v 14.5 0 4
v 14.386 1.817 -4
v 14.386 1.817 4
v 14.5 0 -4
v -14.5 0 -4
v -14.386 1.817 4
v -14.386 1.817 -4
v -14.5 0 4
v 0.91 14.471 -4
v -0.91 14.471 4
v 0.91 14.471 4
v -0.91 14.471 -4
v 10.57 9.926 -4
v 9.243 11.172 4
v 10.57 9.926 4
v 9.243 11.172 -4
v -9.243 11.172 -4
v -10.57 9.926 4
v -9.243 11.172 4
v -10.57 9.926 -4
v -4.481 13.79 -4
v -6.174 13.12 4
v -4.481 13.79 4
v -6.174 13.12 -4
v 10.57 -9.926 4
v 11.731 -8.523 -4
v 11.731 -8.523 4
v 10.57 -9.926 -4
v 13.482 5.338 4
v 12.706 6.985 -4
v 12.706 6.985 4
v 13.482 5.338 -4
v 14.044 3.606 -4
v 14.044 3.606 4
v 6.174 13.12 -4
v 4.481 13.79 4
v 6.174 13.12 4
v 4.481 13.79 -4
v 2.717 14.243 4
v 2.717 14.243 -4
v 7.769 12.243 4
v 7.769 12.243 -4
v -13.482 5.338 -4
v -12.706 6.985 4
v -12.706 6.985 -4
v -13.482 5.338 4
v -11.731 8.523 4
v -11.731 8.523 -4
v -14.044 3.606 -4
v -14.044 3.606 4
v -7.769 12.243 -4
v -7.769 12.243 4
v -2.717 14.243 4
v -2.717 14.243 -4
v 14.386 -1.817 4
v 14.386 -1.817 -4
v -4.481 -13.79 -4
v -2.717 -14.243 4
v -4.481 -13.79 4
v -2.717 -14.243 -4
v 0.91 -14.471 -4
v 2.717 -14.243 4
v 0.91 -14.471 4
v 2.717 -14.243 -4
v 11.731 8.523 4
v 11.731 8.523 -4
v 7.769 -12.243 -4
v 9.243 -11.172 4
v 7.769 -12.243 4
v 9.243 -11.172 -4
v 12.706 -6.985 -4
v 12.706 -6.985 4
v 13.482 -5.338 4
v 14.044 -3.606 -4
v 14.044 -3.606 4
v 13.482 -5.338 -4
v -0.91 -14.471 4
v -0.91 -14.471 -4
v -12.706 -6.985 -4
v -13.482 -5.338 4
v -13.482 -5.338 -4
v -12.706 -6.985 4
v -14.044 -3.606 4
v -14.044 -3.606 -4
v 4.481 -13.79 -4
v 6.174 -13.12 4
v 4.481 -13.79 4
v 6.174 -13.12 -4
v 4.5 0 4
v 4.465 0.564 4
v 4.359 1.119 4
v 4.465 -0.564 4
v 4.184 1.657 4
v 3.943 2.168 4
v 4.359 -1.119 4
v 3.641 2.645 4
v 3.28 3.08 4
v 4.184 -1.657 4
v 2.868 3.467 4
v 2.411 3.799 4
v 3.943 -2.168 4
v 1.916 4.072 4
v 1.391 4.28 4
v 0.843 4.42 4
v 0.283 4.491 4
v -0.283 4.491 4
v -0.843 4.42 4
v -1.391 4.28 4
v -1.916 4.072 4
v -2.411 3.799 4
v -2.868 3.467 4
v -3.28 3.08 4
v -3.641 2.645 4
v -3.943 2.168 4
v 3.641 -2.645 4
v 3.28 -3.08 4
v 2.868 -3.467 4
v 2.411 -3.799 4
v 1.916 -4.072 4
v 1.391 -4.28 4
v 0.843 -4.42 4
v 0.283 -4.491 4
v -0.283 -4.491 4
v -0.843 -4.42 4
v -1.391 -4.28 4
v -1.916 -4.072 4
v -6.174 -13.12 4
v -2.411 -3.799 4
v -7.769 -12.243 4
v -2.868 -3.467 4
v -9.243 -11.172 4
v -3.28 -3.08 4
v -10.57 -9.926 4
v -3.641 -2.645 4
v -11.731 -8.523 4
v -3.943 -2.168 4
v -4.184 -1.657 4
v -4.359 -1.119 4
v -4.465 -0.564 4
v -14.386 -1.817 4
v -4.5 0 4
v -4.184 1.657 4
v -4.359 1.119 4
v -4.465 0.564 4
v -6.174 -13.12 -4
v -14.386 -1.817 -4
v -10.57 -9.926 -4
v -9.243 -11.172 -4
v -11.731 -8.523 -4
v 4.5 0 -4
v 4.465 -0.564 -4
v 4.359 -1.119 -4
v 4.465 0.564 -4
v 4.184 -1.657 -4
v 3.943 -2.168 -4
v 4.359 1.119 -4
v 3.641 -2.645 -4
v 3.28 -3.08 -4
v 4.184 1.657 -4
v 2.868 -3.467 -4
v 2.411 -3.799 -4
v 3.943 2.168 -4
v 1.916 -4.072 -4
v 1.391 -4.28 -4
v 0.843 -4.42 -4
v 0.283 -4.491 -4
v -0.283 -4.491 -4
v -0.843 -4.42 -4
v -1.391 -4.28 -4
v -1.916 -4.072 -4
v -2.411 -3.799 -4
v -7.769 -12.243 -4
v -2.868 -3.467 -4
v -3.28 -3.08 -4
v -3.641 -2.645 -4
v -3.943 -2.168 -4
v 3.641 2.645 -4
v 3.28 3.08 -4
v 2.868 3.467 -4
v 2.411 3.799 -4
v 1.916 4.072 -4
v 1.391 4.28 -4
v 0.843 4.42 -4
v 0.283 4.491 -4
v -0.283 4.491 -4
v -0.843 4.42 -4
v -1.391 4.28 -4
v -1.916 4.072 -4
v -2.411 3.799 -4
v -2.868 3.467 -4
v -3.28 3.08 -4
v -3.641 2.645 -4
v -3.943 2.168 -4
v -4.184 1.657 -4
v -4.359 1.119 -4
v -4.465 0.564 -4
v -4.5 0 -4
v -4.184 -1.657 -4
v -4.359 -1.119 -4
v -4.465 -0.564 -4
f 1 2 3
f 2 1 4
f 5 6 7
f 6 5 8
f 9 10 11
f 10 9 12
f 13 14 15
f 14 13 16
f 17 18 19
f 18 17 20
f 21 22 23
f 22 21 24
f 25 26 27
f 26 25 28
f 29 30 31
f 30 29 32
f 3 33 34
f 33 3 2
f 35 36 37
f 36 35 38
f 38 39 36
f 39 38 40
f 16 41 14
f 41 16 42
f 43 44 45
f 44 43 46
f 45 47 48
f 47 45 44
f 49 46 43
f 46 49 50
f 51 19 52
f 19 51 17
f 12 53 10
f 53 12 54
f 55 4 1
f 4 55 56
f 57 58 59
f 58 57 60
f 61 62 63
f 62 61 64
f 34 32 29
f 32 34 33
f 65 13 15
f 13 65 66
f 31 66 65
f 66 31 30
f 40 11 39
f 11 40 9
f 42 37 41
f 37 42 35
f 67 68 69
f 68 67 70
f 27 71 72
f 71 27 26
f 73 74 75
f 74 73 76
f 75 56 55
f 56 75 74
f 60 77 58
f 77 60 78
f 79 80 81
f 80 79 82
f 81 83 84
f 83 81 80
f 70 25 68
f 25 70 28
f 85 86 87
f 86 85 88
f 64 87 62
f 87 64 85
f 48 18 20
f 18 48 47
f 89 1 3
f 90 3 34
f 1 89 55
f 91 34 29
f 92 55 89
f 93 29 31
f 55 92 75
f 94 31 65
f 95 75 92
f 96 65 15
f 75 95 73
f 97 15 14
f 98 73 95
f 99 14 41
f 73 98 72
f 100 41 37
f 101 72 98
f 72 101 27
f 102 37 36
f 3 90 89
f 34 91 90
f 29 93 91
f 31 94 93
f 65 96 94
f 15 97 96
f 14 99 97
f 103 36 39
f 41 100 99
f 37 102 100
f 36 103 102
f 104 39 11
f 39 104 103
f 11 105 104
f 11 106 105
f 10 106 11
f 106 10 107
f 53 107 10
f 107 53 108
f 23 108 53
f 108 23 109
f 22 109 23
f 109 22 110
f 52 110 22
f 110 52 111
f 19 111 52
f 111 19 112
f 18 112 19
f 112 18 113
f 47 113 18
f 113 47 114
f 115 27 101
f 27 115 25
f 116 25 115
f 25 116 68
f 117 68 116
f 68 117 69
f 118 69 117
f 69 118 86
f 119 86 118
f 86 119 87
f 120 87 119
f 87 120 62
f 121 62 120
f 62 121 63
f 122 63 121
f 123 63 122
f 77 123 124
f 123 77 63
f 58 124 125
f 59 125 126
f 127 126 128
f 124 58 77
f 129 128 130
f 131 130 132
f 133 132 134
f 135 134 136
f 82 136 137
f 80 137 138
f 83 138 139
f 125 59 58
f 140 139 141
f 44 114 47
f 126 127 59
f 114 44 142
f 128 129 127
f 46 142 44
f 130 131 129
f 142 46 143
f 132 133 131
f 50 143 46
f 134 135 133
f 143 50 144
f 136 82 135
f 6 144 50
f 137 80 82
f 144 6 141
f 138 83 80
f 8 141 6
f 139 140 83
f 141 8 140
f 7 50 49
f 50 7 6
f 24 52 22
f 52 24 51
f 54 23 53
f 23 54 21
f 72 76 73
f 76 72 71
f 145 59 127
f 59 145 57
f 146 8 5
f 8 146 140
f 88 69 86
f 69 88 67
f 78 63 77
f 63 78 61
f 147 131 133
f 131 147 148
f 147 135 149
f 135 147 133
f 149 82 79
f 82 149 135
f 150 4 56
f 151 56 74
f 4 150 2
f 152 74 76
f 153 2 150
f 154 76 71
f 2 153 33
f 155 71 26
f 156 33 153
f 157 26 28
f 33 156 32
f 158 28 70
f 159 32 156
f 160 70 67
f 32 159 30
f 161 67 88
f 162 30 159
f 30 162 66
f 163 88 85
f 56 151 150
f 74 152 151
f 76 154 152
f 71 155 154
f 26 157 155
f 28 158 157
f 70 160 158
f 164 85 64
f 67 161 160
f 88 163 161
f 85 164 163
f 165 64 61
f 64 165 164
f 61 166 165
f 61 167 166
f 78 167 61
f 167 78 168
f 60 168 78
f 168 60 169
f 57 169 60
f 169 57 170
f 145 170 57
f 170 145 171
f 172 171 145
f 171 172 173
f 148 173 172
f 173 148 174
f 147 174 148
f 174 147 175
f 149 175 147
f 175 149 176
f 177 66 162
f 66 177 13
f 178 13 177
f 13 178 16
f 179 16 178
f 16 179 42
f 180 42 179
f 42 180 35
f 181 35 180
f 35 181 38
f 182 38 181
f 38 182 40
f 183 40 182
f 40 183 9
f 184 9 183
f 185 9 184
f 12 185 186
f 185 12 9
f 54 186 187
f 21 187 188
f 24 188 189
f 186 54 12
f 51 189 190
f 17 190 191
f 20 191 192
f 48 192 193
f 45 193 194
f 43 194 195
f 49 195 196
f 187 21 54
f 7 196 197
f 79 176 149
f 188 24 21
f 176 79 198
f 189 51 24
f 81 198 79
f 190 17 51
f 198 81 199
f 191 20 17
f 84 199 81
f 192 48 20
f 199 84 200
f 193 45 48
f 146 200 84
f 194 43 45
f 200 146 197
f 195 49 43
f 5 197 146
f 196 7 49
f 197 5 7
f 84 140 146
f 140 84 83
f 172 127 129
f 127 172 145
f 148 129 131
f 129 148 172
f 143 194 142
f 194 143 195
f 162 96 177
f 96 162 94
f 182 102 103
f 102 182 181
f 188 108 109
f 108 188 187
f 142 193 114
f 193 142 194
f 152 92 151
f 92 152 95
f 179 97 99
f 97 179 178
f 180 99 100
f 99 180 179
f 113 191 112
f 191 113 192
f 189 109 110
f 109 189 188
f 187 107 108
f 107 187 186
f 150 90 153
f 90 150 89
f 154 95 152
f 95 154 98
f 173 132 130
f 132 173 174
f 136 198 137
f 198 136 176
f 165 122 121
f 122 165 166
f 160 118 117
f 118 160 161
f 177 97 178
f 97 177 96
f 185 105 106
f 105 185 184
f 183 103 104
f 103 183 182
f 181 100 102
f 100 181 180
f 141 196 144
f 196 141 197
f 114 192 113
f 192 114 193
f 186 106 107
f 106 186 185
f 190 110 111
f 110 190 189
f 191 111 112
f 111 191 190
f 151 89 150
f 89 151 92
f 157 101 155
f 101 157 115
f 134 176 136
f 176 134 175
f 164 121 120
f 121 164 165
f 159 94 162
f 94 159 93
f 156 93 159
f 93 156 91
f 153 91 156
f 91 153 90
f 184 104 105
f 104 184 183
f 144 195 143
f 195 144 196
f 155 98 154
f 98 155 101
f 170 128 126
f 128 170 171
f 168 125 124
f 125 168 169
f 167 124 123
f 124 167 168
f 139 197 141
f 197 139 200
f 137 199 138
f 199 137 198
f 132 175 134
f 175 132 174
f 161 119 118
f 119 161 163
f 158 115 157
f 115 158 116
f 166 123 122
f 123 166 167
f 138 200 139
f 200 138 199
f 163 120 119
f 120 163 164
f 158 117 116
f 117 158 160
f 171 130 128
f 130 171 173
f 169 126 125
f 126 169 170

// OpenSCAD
$fn = 50;


difference() {
	union() {
		translate(v = [0, 0, -4.0000000000]) {
			cylinder(h = 8, r = 14.5000000000);
		}
	}
	union() {
		translate(v = [0, 0, -100.0000000000]) {
			cylinder(h = 200, r = 4.5000000000);
		}
	}
}
